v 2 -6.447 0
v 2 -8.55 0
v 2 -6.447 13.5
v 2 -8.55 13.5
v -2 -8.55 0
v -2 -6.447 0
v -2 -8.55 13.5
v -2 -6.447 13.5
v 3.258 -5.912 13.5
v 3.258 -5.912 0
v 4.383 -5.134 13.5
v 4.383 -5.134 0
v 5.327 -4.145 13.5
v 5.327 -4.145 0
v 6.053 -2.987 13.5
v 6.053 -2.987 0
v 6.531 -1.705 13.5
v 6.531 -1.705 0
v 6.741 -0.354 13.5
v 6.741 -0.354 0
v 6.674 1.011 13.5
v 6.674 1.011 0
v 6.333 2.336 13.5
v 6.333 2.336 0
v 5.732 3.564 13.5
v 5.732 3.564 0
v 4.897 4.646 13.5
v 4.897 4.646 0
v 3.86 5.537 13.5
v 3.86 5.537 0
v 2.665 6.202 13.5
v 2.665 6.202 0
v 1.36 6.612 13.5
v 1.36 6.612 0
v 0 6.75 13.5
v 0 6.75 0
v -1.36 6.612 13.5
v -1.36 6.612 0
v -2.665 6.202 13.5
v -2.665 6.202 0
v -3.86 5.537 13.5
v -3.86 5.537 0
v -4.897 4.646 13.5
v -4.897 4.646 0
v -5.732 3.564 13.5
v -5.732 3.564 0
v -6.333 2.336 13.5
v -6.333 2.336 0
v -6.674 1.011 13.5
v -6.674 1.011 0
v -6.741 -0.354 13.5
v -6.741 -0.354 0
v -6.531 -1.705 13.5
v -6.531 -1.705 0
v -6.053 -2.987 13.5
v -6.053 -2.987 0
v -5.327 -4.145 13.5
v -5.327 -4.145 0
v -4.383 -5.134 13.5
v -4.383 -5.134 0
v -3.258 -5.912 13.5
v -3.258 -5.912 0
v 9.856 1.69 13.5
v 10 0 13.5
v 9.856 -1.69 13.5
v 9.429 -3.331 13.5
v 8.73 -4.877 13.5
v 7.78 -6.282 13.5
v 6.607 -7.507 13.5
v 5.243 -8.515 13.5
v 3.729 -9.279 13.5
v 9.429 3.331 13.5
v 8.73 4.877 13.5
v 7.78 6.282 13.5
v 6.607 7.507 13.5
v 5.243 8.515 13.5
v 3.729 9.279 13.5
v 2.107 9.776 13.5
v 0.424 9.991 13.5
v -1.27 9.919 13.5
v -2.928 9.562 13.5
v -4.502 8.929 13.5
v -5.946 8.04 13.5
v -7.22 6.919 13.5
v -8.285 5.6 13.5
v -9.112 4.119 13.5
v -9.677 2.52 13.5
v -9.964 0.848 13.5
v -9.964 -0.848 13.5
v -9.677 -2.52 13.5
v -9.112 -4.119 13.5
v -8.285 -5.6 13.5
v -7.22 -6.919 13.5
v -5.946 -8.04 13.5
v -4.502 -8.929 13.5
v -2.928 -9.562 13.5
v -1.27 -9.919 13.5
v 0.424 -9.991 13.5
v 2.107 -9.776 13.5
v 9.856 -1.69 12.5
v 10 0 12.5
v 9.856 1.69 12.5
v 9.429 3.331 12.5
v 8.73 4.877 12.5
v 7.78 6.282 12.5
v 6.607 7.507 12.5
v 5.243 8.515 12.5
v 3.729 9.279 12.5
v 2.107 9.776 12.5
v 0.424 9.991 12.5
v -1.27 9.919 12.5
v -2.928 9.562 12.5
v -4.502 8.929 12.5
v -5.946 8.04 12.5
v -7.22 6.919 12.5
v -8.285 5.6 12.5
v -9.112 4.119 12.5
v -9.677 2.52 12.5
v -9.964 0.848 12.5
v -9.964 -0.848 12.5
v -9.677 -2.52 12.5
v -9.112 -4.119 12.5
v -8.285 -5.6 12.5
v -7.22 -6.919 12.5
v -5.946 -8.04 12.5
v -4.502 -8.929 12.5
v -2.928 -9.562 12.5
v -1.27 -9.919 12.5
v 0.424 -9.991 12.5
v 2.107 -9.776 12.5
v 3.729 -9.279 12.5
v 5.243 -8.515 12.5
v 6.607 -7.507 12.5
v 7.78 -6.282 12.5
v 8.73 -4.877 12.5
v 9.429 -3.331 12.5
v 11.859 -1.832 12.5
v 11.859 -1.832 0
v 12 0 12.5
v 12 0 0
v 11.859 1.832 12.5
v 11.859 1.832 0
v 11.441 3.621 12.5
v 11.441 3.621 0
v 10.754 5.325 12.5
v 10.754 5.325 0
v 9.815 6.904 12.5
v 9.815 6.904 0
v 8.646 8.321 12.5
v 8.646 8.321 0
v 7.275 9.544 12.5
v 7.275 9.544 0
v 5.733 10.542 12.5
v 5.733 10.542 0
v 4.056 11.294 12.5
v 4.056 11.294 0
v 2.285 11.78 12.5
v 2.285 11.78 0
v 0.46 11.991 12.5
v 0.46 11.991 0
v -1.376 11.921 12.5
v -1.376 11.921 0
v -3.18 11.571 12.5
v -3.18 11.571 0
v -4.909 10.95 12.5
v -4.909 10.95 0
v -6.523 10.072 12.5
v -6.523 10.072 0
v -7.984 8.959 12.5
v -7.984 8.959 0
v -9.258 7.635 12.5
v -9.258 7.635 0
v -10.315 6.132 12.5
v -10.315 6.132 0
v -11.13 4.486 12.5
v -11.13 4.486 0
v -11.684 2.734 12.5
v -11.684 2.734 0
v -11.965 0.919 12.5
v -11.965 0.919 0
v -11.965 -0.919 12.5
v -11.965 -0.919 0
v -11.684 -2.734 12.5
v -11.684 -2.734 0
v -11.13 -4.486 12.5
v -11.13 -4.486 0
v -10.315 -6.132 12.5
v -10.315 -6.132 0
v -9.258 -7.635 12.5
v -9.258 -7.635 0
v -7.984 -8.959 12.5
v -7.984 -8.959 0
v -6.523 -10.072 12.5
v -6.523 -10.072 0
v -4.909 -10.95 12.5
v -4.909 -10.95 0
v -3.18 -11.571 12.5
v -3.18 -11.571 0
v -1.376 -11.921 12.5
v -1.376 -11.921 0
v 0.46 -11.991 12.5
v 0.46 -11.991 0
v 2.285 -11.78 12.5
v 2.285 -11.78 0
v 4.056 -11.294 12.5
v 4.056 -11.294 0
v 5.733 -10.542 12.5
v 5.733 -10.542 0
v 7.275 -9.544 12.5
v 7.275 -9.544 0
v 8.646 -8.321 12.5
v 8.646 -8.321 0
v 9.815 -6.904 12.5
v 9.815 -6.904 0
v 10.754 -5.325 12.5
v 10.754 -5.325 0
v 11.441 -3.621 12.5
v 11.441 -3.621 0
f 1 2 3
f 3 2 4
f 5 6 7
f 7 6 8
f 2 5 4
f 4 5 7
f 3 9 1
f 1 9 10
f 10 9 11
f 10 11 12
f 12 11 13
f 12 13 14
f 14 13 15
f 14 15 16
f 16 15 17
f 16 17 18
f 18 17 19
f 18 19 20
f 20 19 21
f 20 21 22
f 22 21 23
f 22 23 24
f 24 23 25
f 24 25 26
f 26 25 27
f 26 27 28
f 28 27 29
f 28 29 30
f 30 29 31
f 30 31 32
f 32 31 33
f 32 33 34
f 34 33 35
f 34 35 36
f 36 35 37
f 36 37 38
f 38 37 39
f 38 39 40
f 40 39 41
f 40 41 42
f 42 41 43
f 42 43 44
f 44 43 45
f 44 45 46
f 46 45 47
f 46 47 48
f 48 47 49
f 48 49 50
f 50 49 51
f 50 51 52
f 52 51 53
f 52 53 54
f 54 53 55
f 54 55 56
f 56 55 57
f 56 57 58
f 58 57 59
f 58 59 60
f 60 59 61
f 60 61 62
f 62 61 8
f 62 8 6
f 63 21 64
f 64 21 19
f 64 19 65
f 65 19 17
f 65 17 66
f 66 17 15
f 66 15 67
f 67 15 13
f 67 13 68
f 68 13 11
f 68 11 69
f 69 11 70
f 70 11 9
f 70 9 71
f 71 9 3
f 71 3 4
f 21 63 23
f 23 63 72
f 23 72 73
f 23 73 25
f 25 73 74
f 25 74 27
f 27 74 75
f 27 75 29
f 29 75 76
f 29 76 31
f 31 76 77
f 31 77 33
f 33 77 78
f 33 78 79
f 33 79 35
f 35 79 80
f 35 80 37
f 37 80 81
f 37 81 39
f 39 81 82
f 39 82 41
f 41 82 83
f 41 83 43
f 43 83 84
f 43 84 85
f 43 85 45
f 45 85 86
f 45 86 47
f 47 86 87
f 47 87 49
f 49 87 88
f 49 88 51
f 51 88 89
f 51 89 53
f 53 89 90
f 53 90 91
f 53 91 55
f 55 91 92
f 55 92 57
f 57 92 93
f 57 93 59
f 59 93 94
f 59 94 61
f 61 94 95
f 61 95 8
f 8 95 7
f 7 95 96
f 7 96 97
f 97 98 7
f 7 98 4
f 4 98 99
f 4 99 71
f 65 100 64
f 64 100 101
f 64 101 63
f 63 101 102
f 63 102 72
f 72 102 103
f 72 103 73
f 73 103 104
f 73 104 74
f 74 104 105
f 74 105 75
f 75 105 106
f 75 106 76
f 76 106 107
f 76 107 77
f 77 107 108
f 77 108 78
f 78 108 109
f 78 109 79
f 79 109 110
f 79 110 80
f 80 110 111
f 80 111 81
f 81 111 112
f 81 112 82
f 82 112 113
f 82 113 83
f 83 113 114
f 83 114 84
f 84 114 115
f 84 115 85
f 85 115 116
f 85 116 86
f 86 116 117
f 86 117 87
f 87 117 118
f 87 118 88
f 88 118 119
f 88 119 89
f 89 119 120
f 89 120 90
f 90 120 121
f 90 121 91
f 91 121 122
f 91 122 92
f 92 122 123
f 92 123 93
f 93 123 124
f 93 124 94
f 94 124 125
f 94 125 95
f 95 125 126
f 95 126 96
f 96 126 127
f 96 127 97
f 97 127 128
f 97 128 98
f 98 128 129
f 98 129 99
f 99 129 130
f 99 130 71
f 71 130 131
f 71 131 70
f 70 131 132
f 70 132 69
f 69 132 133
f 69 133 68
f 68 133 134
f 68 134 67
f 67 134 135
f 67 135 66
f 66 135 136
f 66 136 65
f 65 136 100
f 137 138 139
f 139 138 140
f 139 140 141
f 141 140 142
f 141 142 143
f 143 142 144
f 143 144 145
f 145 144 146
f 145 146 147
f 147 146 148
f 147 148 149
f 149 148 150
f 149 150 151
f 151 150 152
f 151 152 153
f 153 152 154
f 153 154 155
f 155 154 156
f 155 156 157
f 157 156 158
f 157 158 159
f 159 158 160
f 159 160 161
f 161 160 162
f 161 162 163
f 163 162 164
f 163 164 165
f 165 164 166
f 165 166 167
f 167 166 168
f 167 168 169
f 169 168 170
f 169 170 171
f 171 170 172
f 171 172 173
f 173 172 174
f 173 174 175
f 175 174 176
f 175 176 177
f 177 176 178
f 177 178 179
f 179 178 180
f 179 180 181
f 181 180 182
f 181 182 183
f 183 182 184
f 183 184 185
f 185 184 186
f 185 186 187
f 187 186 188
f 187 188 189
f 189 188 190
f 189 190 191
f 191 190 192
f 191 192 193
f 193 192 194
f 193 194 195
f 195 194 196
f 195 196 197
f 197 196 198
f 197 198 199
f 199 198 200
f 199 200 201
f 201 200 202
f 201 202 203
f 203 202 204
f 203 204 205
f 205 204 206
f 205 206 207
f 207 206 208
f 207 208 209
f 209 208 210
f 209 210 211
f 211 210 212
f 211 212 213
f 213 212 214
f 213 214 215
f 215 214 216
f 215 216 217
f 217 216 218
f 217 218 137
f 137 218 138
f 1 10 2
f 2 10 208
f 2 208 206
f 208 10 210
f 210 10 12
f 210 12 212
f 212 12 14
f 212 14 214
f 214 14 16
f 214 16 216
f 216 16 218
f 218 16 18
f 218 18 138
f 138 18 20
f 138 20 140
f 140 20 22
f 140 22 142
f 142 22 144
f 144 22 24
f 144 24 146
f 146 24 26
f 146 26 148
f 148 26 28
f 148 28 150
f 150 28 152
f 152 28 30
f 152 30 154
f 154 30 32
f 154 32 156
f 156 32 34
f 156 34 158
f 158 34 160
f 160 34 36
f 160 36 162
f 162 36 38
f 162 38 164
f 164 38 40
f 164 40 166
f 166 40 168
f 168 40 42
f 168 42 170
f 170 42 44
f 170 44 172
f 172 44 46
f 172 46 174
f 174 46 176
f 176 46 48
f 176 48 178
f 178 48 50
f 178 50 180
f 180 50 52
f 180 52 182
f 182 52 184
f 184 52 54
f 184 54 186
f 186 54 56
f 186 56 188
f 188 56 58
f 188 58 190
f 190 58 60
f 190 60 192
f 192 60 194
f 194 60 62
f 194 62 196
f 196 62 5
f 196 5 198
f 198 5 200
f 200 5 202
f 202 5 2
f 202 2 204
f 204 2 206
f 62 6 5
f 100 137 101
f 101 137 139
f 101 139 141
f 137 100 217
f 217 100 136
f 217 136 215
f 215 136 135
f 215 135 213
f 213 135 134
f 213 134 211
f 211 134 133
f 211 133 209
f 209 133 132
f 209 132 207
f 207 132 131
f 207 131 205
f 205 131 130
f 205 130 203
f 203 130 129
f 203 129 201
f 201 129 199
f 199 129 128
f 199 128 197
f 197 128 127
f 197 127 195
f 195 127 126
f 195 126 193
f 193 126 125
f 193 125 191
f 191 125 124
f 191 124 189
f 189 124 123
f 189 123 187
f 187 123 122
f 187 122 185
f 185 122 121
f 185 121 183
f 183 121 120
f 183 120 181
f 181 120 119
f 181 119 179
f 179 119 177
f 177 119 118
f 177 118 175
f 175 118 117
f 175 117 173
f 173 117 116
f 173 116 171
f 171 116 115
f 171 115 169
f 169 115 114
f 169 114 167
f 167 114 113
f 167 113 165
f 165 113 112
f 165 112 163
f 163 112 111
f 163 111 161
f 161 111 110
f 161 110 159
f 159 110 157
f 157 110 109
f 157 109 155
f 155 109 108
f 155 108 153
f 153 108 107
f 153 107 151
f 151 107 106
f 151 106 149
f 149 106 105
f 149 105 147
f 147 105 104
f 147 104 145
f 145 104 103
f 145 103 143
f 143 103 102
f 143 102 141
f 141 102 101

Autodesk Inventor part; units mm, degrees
ref_plane "YZ Plane" through (0, 0, 0) normal (1, 0, 0) x (0, 1, 0)
ref_plane "XZ Plane" through (0, 0, 0) normal (0, 1, 0) x (-1, 0, 0)
ref_plane "XY Plane" through (0, 0, 0) normal (0, 0, 1) x (1, 0, 0)
sketch "Sketch1" plane through (0, 0, 0) normal (0, 0, 1) x (1, 0, 0)
  circle A0 centre (0, 0) radius 6.75
  circle A1 centre (0, 0) radius 12
  dimension "d0" = 13.5
  dimension "d1" = 24
extrude "Extrusion1" add sketch "Sketch1" along normal blind 12.5
sketch "Sketch3" plane through (0, 0, 12.5) normal (0, 0, 1) x (1, 0, 0)
  circle A0 centre (0, 0) radius 10
  circle A1 centre (0, 0) radius 6.75 projected
  dimension "d7" = 20
extrude "Extrusion3" add sketch "Sketch3" along normal blind 1
sketch "Sketch5" plane through (0, 0, 13.5) normal (0, 0, 1) x (1, 0, 0)
  line L0 (2, -8.55) -> (-2, -8.55)
  line L1 (-2, -8.55) -> (-2, -4.55)
  line L2 (-2, -4.55) -> (2, -4.55)
  line L3 (2, -4.55) -> (2, -8.55)
  line L4 (3.7816, -6.55) -> (-3.7816, -6.55) projected
  point P0 (0, 0)
  point P1 (0, -8.55)
  point P2 (-2, -6.55)
  point P3 (0, -6.55)
  dimension "d13" = 4
  dimension "d14" = 4
extrude "Extrusion5" cut sketch "Sketch5" against normal through all
properties part number "Outer Wheel Spacer"
